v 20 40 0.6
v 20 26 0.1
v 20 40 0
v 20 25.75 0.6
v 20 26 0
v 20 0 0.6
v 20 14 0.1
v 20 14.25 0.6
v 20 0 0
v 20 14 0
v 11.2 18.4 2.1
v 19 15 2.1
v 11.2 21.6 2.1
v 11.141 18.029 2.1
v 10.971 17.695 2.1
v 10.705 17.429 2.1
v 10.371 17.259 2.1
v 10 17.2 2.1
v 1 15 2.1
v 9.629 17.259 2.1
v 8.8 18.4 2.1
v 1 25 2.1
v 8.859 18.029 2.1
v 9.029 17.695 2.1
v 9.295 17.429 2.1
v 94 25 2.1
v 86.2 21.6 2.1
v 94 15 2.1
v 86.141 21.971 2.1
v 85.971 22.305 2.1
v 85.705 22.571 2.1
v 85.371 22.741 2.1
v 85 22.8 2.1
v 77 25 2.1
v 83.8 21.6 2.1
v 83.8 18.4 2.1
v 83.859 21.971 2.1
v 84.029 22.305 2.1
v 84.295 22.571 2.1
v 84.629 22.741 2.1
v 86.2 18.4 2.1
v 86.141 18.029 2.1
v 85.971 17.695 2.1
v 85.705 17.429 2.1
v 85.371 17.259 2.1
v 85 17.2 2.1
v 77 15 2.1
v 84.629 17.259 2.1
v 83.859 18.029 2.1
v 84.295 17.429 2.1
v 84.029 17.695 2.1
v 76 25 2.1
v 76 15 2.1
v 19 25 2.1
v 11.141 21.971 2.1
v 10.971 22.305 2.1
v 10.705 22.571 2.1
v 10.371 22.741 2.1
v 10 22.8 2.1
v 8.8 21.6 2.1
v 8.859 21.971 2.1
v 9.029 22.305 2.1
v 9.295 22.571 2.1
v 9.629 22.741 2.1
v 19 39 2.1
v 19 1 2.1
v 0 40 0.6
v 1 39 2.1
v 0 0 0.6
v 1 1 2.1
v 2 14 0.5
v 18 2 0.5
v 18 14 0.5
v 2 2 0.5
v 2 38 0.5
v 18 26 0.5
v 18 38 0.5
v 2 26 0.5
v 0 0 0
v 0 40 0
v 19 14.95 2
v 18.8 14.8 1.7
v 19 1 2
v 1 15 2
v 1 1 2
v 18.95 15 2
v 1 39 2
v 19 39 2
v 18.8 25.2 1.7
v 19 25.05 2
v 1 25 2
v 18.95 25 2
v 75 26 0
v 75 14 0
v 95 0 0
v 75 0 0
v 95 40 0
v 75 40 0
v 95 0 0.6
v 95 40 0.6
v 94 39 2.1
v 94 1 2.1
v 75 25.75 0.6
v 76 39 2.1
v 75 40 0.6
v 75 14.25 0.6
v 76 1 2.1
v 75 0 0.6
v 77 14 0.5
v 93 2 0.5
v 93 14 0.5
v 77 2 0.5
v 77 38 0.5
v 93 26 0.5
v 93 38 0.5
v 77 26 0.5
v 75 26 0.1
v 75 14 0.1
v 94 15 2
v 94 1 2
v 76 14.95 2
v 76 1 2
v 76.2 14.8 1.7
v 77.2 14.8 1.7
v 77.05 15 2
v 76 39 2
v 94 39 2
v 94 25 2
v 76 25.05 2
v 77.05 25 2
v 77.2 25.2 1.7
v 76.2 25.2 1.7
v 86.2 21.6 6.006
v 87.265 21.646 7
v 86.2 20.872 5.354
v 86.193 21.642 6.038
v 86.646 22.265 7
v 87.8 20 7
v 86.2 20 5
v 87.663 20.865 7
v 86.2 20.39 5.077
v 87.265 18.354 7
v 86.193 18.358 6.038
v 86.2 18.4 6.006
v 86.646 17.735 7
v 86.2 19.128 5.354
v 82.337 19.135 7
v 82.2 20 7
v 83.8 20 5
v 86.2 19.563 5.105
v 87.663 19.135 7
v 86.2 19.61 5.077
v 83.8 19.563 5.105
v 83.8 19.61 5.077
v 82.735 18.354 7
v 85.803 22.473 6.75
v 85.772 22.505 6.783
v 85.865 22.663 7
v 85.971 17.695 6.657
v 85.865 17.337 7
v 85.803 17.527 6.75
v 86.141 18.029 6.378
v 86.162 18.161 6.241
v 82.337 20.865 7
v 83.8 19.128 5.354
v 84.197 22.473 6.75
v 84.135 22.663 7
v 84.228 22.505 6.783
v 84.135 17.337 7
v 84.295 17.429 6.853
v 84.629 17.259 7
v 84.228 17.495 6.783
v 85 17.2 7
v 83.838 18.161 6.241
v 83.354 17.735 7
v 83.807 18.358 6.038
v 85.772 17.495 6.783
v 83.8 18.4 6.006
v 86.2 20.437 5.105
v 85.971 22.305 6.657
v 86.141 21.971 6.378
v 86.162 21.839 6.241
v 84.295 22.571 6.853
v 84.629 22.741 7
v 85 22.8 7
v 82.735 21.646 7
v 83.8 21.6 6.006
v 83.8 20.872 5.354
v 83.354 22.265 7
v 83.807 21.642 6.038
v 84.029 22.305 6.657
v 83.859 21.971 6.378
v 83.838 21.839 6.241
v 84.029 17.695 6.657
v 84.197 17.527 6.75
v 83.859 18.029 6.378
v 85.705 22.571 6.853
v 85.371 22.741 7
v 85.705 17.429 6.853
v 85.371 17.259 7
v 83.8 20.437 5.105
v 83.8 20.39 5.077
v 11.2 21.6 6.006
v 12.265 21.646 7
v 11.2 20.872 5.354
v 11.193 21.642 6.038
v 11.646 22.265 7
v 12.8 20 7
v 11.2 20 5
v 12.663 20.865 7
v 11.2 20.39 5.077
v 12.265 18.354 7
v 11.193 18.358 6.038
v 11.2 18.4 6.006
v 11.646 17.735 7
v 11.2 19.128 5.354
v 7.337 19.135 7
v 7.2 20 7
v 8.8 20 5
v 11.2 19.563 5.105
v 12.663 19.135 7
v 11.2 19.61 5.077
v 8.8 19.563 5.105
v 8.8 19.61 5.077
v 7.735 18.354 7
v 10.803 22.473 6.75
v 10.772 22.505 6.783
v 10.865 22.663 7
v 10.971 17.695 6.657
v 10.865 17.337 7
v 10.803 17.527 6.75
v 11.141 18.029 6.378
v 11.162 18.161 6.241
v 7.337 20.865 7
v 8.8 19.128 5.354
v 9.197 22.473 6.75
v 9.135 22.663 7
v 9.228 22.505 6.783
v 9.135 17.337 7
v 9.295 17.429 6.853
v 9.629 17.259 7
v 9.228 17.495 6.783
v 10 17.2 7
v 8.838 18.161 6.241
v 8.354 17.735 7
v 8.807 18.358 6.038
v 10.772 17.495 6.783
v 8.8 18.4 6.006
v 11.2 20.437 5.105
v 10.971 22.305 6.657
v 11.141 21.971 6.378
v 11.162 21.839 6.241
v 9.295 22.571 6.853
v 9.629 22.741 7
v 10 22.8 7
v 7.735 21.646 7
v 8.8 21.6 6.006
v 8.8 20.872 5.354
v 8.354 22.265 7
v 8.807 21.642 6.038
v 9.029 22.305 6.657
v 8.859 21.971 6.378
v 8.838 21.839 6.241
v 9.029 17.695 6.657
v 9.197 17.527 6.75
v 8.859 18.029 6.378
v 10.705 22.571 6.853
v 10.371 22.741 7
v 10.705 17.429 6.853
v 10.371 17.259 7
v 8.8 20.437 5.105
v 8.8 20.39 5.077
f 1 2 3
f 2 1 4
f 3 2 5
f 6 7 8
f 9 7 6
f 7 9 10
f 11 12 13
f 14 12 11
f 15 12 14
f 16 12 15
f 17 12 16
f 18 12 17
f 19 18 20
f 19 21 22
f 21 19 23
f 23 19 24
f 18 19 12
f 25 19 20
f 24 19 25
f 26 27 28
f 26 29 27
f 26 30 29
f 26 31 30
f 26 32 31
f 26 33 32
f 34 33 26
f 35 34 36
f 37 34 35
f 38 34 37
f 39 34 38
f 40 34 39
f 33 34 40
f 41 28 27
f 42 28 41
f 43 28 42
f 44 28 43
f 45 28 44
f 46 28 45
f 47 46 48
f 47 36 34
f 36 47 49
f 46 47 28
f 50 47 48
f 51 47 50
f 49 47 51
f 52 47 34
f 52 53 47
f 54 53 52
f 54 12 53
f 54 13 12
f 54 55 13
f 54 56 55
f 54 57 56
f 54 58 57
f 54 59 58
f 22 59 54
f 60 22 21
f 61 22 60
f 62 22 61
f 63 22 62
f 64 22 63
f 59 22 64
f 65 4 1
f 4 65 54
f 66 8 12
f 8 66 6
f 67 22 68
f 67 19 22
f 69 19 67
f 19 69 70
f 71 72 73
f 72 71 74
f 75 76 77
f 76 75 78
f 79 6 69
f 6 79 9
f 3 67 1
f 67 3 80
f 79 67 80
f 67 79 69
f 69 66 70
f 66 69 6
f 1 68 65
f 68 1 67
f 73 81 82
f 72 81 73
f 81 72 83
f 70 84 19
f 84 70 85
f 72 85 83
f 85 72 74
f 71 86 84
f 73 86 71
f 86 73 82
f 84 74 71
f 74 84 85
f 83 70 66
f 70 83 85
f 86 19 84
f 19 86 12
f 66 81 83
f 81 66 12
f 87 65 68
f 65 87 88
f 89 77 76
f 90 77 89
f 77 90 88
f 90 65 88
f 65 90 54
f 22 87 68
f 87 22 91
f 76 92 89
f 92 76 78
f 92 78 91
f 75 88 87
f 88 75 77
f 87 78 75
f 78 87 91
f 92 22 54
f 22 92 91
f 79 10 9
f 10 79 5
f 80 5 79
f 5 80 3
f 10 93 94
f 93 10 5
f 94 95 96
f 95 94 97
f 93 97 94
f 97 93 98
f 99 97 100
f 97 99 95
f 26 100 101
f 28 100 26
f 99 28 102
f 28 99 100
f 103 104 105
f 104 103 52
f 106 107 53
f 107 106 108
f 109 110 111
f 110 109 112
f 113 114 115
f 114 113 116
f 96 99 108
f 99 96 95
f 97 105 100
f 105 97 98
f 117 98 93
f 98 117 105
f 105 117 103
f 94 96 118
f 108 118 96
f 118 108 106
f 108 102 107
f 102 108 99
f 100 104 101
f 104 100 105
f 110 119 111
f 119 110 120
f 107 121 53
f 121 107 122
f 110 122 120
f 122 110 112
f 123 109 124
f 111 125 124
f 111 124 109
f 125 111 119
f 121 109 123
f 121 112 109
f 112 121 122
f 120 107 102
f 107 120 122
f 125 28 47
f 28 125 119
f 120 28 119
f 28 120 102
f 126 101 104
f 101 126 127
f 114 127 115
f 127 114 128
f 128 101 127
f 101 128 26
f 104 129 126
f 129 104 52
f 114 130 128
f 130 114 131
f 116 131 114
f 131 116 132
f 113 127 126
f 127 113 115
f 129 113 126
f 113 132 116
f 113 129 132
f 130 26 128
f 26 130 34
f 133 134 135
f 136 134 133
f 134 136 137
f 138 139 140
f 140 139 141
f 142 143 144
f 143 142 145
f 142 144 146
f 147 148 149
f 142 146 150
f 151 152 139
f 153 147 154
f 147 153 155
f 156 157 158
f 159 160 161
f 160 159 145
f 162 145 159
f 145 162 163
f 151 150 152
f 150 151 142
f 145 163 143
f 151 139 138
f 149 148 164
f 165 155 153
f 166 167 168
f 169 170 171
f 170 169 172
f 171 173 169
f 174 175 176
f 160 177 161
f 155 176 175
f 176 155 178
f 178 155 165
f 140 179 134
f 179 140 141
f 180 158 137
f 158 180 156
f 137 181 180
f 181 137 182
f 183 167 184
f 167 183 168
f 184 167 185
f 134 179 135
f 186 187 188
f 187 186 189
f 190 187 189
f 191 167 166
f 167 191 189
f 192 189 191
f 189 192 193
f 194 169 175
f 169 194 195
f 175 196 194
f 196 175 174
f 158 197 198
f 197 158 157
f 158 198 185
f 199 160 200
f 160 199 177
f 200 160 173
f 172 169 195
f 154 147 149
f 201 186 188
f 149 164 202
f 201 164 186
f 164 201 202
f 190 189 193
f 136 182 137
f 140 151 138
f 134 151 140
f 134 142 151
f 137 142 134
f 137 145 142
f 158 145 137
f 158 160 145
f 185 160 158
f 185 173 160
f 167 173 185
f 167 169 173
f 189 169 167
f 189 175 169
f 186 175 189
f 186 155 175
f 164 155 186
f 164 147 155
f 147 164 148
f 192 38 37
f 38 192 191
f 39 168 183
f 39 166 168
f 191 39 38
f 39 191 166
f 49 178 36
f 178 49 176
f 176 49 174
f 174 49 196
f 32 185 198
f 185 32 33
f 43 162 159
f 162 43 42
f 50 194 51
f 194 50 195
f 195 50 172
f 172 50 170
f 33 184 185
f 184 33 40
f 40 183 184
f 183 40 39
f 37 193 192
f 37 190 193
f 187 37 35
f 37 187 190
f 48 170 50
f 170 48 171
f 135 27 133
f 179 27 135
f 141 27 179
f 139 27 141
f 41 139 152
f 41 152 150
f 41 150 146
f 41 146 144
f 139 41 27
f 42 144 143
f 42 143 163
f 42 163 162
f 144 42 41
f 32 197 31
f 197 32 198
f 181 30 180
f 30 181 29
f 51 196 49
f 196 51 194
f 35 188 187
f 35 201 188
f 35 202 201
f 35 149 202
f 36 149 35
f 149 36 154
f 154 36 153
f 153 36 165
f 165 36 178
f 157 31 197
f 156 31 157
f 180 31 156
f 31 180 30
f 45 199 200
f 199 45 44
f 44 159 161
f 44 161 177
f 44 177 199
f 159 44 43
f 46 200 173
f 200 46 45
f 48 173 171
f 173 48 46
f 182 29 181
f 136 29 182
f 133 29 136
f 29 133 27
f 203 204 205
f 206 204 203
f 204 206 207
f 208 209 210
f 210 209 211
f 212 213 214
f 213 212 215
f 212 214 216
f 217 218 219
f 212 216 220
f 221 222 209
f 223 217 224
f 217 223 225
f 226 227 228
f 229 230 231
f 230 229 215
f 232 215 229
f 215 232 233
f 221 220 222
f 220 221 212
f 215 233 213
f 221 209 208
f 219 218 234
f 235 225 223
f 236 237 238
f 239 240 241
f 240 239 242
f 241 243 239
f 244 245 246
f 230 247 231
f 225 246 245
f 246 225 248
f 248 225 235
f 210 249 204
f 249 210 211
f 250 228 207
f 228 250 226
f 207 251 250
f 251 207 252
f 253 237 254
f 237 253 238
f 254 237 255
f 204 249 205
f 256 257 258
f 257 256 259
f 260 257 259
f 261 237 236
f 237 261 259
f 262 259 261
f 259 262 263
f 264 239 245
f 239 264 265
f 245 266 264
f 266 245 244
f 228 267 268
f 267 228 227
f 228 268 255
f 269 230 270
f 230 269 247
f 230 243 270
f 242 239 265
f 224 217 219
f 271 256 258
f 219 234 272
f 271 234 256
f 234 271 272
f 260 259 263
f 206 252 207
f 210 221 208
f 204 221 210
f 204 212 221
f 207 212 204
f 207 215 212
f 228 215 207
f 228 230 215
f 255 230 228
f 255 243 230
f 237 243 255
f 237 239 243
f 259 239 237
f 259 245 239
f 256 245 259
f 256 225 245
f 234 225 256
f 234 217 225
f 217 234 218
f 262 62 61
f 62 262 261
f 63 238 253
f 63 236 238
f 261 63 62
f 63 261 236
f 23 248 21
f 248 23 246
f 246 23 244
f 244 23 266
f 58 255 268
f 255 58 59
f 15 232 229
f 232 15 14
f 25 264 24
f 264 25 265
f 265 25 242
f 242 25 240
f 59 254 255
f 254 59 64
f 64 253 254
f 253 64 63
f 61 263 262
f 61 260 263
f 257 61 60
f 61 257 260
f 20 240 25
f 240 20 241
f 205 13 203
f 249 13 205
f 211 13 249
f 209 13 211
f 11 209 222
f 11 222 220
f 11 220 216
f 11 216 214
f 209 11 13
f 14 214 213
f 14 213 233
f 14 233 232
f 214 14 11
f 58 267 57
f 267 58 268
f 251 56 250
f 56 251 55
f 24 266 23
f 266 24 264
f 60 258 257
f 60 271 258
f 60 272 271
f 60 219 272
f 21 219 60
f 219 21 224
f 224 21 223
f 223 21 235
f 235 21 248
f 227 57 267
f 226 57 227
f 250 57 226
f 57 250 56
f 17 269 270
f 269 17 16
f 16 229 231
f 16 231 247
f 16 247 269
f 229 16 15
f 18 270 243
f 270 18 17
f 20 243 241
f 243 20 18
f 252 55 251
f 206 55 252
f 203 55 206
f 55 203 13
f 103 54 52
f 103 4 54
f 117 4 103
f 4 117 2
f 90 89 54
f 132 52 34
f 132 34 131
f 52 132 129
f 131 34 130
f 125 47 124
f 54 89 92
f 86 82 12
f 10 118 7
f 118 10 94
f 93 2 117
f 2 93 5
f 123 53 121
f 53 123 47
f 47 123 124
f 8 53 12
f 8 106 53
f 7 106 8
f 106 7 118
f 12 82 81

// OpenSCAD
echo(version=version());
// Base Config
base_W = 20; // Min Size < 10
base_H = 40; // Min Size < 40
base_T = 0.5; // Fix Size = 0.5 for Stapler
default_S = 12; // Fix Size = 12 for Stapler (Stapler size)
default_T = 2.0; // Fix Size = 2.0 for Stapler (base_T < default_T)
$fn = 60;

# staple_base(base_T,base_W,base_H,default_S,default_T);
# translate([75, 0, 0]) staple_base(base_T,base_W,base_H,default_S,default_T);

translate([18, 14, 0]) hull() {
    translate([1, 1, 2]) cube([60 - 2, 12 - 2, 0.1]);
    translate([0, 0, 0]) cube([60, 12, 0.1]);
}

translate([10, 20, 6]) {
    cylinder(h=2, r1=1.2, r2=2.8, center=true, $fn=20);
    hull(){
        translate([0, 1.6, -2]) cylinder(h=6, r=1.2, center=true, $fn=20);
        translate([0, -1.6, -2]) cylinder(h=6, r=1.2, center=true, $fn=20);
    }
    translate([75, 0, 0]) {
        cylinder(h=2, r1=1.2, r2=2.8, center=true, $fn=20);
        hull(){
            translate([0, 1.6, -2]) cylinder(h=6, r=1.2, center=true, $fn=20);
            translate([0, -1.6, -2]) cylinder(h=6, r=1.2, center=true, $fn=20);
        }
    }
}

module stapler_area(bt,bw,ds,dt) {
    hull() {
        translate([0, 0, dt - bt]) cube([bw - dt, ds + 2, 0.1]);
        translate([1, 1, 0]) cube([bw - dt * 2, ds, 0.1]);
    }
}

module staple_base(bt,bw,bh,ds,dt) {
    union() {
        // Base1(Bottom)
        cube([bw, bh, bt]);
        // Base2(Top)
        translate([0, 0, bt]) {
            difference() {
                // Base2_body
                hull() {
                    translate([1, 1, dt - bt]) cube([bw - 2, bh - 2, 0.1]);
                    translate([0, 0, 0]) cube([bw, bh, 0.1]);
                }
                // Base2_stapler_area1(Top)
                # translate([dt - 1, dt - 1, 0]) stapler_area(bt,bw,ds,dt);
                // Base2_stapler_area2(Bottom)
                # translate([dt - 1, bh - ds - dt - 1, 0]) stapler_area(bt,bw,ds,dt);
            }
        }
    }
}
